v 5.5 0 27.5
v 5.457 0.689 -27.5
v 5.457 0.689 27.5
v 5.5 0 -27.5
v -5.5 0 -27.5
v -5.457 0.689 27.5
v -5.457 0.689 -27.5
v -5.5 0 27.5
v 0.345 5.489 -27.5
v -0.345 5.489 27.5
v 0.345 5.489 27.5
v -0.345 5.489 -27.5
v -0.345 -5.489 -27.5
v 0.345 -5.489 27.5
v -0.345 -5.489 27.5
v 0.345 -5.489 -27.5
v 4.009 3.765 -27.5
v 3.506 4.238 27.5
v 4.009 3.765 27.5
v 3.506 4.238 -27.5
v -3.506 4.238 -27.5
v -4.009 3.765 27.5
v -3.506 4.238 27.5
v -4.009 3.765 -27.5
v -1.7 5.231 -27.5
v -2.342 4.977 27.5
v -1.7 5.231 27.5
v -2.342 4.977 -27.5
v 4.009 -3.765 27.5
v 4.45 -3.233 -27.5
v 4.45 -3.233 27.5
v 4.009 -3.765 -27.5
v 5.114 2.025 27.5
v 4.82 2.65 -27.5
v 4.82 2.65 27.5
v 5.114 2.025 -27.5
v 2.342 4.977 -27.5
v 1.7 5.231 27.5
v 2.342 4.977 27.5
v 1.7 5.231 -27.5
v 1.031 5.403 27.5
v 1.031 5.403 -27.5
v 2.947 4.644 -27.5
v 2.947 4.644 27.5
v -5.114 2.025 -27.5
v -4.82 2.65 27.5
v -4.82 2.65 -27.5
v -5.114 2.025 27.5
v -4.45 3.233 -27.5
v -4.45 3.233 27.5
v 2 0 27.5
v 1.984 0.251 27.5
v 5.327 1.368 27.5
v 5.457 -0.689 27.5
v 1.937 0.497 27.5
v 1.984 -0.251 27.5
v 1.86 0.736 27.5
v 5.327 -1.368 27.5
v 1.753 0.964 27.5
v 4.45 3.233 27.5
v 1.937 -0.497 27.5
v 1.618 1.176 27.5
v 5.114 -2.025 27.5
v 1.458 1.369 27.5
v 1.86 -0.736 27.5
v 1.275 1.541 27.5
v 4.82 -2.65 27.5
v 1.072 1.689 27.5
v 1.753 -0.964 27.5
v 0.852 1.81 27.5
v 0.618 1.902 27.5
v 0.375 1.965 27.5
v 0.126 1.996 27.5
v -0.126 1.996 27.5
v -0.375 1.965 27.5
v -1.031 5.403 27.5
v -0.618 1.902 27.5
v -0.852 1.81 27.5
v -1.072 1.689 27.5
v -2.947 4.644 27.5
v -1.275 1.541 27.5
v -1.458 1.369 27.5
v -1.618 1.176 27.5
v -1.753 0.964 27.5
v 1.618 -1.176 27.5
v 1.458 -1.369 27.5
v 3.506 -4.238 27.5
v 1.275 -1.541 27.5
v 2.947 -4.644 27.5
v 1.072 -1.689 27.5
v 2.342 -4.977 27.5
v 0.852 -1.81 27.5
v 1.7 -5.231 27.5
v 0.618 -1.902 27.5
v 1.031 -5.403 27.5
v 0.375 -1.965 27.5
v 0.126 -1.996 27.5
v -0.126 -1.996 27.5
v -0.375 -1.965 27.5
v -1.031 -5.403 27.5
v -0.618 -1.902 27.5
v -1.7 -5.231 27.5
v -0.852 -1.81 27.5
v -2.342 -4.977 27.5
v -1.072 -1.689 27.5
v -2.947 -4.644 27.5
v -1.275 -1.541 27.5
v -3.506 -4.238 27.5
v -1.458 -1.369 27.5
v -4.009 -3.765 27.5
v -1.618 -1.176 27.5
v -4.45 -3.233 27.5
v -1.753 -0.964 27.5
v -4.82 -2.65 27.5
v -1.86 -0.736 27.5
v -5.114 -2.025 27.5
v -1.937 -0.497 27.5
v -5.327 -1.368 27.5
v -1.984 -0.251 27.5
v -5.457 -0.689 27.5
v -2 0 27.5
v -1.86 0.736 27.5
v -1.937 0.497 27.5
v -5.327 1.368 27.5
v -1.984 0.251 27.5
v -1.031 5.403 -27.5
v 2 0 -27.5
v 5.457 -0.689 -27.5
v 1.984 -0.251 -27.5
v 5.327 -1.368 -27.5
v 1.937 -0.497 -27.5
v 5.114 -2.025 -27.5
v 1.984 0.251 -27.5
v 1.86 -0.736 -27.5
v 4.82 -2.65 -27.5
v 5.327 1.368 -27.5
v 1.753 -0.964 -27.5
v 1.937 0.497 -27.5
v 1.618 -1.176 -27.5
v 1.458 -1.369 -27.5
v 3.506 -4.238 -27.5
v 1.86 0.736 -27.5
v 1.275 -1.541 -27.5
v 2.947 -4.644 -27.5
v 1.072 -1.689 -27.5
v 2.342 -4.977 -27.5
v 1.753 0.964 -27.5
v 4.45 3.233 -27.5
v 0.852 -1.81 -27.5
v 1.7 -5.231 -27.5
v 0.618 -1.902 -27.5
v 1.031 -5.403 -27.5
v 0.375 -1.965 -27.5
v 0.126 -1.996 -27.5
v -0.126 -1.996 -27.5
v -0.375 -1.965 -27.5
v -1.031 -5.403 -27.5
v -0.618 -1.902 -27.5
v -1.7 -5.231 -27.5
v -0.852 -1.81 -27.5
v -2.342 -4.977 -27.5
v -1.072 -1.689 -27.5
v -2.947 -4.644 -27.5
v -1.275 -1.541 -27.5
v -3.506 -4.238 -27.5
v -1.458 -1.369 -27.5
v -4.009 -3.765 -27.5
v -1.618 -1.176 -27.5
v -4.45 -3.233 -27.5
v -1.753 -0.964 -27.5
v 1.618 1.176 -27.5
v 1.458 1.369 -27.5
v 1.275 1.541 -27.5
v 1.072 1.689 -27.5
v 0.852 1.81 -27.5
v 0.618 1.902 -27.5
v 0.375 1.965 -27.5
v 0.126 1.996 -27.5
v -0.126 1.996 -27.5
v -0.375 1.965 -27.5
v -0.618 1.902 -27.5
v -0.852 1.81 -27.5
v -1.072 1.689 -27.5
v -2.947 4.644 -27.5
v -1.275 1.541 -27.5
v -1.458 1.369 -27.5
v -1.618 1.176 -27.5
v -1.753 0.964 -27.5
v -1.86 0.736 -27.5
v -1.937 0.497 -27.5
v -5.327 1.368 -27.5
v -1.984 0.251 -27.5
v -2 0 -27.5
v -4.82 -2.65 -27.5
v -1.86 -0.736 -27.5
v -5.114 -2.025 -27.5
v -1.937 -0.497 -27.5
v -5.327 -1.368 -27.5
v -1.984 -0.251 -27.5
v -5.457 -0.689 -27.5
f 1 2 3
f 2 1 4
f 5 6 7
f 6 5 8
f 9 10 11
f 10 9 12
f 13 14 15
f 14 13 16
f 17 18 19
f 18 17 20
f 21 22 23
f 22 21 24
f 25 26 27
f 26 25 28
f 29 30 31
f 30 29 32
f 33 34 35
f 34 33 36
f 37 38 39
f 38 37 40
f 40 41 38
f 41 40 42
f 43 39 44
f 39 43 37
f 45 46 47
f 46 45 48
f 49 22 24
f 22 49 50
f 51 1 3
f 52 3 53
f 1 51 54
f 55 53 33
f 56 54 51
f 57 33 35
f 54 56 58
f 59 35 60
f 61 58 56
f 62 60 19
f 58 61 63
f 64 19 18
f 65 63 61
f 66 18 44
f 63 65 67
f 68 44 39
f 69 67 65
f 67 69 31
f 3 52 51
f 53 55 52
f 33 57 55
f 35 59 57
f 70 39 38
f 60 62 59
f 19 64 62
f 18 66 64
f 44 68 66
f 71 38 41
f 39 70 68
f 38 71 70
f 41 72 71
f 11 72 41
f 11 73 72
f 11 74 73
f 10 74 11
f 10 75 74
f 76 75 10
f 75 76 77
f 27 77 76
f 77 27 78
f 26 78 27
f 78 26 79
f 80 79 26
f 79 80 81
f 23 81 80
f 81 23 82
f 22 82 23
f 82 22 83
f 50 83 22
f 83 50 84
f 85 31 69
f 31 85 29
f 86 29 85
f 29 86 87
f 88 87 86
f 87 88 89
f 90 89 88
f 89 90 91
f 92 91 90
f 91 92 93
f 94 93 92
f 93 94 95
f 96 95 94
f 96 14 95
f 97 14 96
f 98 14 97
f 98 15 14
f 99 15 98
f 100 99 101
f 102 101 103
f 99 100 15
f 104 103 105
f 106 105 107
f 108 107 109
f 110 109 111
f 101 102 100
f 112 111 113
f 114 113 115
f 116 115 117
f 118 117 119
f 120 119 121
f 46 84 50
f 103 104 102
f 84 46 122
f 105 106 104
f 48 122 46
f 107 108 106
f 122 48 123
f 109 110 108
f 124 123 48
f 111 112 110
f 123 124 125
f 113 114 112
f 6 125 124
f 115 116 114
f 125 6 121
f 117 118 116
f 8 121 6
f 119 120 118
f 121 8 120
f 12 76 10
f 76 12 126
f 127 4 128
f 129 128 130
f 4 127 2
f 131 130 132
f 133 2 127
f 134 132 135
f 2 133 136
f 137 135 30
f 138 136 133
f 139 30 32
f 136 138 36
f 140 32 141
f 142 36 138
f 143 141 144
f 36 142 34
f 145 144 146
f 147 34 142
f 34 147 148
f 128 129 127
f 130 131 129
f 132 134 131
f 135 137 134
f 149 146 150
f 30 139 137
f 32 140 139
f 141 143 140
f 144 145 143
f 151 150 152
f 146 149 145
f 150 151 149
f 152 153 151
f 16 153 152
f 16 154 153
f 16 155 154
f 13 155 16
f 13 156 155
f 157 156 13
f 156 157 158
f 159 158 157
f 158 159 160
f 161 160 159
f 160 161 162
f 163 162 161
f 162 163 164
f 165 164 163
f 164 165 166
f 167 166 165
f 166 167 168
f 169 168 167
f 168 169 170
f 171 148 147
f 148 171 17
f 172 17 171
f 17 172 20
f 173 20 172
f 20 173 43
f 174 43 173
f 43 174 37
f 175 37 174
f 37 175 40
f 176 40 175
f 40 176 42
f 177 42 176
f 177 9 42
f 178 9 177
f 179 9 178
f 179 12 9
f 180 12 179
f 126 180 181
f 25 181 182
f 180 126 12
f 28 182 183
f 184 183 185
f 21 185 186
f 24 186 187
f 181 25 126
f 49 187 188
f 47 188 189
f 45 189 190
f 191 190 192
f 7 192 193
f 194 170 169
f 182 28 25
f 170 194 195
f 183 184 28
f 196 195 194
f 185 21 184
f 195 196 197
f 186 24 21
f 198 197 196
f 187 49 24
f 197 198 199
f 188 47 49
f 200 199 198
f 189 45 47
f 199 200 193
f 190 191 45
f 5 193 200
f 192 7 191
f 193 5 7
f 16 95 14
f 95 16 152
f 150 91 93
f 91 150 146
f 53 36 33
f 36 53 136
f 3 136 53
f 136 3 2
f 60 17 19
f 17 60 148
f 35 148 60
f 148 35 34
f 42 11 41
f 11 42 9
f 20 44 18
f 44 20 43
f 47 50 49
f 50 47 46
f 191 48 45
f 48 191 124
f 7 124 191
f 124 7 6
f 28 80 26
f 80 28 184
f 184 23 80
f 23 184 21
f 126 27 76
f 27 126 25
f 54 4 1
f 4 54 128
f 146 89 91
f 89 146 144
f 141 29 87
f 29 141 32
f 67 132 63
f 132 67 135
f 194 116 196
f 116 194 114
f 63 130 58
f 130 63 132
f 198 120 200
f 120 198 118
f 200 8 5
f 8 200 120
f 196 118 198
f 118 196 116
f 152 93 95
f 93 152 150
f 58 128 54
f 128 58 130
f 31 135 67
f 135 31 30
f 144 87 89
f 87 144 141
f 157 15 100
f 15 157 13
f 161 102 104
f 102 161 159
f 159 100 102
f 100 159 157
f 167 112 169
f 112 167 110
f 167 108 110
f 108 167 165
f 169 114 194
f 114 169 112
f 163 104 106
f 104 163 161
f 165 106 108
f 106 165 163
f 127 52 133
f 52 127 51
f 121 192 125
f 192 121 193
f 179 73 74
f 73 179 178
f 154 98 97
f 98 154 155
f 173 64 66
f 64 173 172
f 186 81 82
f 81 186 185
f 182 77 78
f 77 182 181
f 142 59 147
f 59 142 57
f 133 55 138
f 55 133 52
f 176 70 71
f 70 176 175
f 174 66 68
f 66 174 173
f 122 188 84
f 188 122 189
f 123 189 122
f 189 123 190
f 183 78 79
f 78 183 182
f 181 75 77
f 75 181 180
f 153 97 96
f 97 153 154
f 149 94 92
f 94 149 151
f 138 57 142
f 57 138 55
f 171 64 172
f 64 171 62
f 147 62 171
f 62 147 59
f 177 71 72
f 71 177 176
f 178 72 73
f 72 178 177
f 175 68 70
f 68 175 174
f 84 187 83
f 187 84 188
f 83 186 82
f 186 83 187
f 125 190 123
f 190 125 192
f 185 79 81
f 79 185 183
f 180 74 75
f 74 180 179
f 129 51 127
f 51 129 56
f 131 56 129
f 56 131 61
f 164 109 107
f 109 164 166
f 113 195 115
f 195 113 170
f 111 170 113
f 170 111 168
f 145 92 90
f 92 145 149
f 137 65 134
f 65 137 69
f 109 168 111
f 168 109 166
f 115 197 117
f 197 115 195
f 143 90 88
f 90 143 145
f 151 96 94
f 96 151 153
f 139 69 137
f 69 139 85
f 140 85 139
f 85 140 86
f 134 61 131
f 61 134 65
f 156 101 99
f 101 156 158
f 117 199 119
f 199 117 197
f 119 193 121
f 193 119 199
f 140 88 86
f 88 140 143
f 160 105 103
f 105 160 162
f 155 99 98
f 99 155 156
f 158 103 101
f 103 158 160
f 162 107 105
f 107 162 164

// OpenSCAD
$fn = 50;


difference() {
	union() {
		translate(v = [0, 0, -27.5000000000]) {
			cylinder(h = 55, r = 5.5000000000);
		}
	}
	union() {
		translate(v = [0, 0, -100.0000000000]) {
			cylinder(h = 200, r = 2);
		}
	}
}
